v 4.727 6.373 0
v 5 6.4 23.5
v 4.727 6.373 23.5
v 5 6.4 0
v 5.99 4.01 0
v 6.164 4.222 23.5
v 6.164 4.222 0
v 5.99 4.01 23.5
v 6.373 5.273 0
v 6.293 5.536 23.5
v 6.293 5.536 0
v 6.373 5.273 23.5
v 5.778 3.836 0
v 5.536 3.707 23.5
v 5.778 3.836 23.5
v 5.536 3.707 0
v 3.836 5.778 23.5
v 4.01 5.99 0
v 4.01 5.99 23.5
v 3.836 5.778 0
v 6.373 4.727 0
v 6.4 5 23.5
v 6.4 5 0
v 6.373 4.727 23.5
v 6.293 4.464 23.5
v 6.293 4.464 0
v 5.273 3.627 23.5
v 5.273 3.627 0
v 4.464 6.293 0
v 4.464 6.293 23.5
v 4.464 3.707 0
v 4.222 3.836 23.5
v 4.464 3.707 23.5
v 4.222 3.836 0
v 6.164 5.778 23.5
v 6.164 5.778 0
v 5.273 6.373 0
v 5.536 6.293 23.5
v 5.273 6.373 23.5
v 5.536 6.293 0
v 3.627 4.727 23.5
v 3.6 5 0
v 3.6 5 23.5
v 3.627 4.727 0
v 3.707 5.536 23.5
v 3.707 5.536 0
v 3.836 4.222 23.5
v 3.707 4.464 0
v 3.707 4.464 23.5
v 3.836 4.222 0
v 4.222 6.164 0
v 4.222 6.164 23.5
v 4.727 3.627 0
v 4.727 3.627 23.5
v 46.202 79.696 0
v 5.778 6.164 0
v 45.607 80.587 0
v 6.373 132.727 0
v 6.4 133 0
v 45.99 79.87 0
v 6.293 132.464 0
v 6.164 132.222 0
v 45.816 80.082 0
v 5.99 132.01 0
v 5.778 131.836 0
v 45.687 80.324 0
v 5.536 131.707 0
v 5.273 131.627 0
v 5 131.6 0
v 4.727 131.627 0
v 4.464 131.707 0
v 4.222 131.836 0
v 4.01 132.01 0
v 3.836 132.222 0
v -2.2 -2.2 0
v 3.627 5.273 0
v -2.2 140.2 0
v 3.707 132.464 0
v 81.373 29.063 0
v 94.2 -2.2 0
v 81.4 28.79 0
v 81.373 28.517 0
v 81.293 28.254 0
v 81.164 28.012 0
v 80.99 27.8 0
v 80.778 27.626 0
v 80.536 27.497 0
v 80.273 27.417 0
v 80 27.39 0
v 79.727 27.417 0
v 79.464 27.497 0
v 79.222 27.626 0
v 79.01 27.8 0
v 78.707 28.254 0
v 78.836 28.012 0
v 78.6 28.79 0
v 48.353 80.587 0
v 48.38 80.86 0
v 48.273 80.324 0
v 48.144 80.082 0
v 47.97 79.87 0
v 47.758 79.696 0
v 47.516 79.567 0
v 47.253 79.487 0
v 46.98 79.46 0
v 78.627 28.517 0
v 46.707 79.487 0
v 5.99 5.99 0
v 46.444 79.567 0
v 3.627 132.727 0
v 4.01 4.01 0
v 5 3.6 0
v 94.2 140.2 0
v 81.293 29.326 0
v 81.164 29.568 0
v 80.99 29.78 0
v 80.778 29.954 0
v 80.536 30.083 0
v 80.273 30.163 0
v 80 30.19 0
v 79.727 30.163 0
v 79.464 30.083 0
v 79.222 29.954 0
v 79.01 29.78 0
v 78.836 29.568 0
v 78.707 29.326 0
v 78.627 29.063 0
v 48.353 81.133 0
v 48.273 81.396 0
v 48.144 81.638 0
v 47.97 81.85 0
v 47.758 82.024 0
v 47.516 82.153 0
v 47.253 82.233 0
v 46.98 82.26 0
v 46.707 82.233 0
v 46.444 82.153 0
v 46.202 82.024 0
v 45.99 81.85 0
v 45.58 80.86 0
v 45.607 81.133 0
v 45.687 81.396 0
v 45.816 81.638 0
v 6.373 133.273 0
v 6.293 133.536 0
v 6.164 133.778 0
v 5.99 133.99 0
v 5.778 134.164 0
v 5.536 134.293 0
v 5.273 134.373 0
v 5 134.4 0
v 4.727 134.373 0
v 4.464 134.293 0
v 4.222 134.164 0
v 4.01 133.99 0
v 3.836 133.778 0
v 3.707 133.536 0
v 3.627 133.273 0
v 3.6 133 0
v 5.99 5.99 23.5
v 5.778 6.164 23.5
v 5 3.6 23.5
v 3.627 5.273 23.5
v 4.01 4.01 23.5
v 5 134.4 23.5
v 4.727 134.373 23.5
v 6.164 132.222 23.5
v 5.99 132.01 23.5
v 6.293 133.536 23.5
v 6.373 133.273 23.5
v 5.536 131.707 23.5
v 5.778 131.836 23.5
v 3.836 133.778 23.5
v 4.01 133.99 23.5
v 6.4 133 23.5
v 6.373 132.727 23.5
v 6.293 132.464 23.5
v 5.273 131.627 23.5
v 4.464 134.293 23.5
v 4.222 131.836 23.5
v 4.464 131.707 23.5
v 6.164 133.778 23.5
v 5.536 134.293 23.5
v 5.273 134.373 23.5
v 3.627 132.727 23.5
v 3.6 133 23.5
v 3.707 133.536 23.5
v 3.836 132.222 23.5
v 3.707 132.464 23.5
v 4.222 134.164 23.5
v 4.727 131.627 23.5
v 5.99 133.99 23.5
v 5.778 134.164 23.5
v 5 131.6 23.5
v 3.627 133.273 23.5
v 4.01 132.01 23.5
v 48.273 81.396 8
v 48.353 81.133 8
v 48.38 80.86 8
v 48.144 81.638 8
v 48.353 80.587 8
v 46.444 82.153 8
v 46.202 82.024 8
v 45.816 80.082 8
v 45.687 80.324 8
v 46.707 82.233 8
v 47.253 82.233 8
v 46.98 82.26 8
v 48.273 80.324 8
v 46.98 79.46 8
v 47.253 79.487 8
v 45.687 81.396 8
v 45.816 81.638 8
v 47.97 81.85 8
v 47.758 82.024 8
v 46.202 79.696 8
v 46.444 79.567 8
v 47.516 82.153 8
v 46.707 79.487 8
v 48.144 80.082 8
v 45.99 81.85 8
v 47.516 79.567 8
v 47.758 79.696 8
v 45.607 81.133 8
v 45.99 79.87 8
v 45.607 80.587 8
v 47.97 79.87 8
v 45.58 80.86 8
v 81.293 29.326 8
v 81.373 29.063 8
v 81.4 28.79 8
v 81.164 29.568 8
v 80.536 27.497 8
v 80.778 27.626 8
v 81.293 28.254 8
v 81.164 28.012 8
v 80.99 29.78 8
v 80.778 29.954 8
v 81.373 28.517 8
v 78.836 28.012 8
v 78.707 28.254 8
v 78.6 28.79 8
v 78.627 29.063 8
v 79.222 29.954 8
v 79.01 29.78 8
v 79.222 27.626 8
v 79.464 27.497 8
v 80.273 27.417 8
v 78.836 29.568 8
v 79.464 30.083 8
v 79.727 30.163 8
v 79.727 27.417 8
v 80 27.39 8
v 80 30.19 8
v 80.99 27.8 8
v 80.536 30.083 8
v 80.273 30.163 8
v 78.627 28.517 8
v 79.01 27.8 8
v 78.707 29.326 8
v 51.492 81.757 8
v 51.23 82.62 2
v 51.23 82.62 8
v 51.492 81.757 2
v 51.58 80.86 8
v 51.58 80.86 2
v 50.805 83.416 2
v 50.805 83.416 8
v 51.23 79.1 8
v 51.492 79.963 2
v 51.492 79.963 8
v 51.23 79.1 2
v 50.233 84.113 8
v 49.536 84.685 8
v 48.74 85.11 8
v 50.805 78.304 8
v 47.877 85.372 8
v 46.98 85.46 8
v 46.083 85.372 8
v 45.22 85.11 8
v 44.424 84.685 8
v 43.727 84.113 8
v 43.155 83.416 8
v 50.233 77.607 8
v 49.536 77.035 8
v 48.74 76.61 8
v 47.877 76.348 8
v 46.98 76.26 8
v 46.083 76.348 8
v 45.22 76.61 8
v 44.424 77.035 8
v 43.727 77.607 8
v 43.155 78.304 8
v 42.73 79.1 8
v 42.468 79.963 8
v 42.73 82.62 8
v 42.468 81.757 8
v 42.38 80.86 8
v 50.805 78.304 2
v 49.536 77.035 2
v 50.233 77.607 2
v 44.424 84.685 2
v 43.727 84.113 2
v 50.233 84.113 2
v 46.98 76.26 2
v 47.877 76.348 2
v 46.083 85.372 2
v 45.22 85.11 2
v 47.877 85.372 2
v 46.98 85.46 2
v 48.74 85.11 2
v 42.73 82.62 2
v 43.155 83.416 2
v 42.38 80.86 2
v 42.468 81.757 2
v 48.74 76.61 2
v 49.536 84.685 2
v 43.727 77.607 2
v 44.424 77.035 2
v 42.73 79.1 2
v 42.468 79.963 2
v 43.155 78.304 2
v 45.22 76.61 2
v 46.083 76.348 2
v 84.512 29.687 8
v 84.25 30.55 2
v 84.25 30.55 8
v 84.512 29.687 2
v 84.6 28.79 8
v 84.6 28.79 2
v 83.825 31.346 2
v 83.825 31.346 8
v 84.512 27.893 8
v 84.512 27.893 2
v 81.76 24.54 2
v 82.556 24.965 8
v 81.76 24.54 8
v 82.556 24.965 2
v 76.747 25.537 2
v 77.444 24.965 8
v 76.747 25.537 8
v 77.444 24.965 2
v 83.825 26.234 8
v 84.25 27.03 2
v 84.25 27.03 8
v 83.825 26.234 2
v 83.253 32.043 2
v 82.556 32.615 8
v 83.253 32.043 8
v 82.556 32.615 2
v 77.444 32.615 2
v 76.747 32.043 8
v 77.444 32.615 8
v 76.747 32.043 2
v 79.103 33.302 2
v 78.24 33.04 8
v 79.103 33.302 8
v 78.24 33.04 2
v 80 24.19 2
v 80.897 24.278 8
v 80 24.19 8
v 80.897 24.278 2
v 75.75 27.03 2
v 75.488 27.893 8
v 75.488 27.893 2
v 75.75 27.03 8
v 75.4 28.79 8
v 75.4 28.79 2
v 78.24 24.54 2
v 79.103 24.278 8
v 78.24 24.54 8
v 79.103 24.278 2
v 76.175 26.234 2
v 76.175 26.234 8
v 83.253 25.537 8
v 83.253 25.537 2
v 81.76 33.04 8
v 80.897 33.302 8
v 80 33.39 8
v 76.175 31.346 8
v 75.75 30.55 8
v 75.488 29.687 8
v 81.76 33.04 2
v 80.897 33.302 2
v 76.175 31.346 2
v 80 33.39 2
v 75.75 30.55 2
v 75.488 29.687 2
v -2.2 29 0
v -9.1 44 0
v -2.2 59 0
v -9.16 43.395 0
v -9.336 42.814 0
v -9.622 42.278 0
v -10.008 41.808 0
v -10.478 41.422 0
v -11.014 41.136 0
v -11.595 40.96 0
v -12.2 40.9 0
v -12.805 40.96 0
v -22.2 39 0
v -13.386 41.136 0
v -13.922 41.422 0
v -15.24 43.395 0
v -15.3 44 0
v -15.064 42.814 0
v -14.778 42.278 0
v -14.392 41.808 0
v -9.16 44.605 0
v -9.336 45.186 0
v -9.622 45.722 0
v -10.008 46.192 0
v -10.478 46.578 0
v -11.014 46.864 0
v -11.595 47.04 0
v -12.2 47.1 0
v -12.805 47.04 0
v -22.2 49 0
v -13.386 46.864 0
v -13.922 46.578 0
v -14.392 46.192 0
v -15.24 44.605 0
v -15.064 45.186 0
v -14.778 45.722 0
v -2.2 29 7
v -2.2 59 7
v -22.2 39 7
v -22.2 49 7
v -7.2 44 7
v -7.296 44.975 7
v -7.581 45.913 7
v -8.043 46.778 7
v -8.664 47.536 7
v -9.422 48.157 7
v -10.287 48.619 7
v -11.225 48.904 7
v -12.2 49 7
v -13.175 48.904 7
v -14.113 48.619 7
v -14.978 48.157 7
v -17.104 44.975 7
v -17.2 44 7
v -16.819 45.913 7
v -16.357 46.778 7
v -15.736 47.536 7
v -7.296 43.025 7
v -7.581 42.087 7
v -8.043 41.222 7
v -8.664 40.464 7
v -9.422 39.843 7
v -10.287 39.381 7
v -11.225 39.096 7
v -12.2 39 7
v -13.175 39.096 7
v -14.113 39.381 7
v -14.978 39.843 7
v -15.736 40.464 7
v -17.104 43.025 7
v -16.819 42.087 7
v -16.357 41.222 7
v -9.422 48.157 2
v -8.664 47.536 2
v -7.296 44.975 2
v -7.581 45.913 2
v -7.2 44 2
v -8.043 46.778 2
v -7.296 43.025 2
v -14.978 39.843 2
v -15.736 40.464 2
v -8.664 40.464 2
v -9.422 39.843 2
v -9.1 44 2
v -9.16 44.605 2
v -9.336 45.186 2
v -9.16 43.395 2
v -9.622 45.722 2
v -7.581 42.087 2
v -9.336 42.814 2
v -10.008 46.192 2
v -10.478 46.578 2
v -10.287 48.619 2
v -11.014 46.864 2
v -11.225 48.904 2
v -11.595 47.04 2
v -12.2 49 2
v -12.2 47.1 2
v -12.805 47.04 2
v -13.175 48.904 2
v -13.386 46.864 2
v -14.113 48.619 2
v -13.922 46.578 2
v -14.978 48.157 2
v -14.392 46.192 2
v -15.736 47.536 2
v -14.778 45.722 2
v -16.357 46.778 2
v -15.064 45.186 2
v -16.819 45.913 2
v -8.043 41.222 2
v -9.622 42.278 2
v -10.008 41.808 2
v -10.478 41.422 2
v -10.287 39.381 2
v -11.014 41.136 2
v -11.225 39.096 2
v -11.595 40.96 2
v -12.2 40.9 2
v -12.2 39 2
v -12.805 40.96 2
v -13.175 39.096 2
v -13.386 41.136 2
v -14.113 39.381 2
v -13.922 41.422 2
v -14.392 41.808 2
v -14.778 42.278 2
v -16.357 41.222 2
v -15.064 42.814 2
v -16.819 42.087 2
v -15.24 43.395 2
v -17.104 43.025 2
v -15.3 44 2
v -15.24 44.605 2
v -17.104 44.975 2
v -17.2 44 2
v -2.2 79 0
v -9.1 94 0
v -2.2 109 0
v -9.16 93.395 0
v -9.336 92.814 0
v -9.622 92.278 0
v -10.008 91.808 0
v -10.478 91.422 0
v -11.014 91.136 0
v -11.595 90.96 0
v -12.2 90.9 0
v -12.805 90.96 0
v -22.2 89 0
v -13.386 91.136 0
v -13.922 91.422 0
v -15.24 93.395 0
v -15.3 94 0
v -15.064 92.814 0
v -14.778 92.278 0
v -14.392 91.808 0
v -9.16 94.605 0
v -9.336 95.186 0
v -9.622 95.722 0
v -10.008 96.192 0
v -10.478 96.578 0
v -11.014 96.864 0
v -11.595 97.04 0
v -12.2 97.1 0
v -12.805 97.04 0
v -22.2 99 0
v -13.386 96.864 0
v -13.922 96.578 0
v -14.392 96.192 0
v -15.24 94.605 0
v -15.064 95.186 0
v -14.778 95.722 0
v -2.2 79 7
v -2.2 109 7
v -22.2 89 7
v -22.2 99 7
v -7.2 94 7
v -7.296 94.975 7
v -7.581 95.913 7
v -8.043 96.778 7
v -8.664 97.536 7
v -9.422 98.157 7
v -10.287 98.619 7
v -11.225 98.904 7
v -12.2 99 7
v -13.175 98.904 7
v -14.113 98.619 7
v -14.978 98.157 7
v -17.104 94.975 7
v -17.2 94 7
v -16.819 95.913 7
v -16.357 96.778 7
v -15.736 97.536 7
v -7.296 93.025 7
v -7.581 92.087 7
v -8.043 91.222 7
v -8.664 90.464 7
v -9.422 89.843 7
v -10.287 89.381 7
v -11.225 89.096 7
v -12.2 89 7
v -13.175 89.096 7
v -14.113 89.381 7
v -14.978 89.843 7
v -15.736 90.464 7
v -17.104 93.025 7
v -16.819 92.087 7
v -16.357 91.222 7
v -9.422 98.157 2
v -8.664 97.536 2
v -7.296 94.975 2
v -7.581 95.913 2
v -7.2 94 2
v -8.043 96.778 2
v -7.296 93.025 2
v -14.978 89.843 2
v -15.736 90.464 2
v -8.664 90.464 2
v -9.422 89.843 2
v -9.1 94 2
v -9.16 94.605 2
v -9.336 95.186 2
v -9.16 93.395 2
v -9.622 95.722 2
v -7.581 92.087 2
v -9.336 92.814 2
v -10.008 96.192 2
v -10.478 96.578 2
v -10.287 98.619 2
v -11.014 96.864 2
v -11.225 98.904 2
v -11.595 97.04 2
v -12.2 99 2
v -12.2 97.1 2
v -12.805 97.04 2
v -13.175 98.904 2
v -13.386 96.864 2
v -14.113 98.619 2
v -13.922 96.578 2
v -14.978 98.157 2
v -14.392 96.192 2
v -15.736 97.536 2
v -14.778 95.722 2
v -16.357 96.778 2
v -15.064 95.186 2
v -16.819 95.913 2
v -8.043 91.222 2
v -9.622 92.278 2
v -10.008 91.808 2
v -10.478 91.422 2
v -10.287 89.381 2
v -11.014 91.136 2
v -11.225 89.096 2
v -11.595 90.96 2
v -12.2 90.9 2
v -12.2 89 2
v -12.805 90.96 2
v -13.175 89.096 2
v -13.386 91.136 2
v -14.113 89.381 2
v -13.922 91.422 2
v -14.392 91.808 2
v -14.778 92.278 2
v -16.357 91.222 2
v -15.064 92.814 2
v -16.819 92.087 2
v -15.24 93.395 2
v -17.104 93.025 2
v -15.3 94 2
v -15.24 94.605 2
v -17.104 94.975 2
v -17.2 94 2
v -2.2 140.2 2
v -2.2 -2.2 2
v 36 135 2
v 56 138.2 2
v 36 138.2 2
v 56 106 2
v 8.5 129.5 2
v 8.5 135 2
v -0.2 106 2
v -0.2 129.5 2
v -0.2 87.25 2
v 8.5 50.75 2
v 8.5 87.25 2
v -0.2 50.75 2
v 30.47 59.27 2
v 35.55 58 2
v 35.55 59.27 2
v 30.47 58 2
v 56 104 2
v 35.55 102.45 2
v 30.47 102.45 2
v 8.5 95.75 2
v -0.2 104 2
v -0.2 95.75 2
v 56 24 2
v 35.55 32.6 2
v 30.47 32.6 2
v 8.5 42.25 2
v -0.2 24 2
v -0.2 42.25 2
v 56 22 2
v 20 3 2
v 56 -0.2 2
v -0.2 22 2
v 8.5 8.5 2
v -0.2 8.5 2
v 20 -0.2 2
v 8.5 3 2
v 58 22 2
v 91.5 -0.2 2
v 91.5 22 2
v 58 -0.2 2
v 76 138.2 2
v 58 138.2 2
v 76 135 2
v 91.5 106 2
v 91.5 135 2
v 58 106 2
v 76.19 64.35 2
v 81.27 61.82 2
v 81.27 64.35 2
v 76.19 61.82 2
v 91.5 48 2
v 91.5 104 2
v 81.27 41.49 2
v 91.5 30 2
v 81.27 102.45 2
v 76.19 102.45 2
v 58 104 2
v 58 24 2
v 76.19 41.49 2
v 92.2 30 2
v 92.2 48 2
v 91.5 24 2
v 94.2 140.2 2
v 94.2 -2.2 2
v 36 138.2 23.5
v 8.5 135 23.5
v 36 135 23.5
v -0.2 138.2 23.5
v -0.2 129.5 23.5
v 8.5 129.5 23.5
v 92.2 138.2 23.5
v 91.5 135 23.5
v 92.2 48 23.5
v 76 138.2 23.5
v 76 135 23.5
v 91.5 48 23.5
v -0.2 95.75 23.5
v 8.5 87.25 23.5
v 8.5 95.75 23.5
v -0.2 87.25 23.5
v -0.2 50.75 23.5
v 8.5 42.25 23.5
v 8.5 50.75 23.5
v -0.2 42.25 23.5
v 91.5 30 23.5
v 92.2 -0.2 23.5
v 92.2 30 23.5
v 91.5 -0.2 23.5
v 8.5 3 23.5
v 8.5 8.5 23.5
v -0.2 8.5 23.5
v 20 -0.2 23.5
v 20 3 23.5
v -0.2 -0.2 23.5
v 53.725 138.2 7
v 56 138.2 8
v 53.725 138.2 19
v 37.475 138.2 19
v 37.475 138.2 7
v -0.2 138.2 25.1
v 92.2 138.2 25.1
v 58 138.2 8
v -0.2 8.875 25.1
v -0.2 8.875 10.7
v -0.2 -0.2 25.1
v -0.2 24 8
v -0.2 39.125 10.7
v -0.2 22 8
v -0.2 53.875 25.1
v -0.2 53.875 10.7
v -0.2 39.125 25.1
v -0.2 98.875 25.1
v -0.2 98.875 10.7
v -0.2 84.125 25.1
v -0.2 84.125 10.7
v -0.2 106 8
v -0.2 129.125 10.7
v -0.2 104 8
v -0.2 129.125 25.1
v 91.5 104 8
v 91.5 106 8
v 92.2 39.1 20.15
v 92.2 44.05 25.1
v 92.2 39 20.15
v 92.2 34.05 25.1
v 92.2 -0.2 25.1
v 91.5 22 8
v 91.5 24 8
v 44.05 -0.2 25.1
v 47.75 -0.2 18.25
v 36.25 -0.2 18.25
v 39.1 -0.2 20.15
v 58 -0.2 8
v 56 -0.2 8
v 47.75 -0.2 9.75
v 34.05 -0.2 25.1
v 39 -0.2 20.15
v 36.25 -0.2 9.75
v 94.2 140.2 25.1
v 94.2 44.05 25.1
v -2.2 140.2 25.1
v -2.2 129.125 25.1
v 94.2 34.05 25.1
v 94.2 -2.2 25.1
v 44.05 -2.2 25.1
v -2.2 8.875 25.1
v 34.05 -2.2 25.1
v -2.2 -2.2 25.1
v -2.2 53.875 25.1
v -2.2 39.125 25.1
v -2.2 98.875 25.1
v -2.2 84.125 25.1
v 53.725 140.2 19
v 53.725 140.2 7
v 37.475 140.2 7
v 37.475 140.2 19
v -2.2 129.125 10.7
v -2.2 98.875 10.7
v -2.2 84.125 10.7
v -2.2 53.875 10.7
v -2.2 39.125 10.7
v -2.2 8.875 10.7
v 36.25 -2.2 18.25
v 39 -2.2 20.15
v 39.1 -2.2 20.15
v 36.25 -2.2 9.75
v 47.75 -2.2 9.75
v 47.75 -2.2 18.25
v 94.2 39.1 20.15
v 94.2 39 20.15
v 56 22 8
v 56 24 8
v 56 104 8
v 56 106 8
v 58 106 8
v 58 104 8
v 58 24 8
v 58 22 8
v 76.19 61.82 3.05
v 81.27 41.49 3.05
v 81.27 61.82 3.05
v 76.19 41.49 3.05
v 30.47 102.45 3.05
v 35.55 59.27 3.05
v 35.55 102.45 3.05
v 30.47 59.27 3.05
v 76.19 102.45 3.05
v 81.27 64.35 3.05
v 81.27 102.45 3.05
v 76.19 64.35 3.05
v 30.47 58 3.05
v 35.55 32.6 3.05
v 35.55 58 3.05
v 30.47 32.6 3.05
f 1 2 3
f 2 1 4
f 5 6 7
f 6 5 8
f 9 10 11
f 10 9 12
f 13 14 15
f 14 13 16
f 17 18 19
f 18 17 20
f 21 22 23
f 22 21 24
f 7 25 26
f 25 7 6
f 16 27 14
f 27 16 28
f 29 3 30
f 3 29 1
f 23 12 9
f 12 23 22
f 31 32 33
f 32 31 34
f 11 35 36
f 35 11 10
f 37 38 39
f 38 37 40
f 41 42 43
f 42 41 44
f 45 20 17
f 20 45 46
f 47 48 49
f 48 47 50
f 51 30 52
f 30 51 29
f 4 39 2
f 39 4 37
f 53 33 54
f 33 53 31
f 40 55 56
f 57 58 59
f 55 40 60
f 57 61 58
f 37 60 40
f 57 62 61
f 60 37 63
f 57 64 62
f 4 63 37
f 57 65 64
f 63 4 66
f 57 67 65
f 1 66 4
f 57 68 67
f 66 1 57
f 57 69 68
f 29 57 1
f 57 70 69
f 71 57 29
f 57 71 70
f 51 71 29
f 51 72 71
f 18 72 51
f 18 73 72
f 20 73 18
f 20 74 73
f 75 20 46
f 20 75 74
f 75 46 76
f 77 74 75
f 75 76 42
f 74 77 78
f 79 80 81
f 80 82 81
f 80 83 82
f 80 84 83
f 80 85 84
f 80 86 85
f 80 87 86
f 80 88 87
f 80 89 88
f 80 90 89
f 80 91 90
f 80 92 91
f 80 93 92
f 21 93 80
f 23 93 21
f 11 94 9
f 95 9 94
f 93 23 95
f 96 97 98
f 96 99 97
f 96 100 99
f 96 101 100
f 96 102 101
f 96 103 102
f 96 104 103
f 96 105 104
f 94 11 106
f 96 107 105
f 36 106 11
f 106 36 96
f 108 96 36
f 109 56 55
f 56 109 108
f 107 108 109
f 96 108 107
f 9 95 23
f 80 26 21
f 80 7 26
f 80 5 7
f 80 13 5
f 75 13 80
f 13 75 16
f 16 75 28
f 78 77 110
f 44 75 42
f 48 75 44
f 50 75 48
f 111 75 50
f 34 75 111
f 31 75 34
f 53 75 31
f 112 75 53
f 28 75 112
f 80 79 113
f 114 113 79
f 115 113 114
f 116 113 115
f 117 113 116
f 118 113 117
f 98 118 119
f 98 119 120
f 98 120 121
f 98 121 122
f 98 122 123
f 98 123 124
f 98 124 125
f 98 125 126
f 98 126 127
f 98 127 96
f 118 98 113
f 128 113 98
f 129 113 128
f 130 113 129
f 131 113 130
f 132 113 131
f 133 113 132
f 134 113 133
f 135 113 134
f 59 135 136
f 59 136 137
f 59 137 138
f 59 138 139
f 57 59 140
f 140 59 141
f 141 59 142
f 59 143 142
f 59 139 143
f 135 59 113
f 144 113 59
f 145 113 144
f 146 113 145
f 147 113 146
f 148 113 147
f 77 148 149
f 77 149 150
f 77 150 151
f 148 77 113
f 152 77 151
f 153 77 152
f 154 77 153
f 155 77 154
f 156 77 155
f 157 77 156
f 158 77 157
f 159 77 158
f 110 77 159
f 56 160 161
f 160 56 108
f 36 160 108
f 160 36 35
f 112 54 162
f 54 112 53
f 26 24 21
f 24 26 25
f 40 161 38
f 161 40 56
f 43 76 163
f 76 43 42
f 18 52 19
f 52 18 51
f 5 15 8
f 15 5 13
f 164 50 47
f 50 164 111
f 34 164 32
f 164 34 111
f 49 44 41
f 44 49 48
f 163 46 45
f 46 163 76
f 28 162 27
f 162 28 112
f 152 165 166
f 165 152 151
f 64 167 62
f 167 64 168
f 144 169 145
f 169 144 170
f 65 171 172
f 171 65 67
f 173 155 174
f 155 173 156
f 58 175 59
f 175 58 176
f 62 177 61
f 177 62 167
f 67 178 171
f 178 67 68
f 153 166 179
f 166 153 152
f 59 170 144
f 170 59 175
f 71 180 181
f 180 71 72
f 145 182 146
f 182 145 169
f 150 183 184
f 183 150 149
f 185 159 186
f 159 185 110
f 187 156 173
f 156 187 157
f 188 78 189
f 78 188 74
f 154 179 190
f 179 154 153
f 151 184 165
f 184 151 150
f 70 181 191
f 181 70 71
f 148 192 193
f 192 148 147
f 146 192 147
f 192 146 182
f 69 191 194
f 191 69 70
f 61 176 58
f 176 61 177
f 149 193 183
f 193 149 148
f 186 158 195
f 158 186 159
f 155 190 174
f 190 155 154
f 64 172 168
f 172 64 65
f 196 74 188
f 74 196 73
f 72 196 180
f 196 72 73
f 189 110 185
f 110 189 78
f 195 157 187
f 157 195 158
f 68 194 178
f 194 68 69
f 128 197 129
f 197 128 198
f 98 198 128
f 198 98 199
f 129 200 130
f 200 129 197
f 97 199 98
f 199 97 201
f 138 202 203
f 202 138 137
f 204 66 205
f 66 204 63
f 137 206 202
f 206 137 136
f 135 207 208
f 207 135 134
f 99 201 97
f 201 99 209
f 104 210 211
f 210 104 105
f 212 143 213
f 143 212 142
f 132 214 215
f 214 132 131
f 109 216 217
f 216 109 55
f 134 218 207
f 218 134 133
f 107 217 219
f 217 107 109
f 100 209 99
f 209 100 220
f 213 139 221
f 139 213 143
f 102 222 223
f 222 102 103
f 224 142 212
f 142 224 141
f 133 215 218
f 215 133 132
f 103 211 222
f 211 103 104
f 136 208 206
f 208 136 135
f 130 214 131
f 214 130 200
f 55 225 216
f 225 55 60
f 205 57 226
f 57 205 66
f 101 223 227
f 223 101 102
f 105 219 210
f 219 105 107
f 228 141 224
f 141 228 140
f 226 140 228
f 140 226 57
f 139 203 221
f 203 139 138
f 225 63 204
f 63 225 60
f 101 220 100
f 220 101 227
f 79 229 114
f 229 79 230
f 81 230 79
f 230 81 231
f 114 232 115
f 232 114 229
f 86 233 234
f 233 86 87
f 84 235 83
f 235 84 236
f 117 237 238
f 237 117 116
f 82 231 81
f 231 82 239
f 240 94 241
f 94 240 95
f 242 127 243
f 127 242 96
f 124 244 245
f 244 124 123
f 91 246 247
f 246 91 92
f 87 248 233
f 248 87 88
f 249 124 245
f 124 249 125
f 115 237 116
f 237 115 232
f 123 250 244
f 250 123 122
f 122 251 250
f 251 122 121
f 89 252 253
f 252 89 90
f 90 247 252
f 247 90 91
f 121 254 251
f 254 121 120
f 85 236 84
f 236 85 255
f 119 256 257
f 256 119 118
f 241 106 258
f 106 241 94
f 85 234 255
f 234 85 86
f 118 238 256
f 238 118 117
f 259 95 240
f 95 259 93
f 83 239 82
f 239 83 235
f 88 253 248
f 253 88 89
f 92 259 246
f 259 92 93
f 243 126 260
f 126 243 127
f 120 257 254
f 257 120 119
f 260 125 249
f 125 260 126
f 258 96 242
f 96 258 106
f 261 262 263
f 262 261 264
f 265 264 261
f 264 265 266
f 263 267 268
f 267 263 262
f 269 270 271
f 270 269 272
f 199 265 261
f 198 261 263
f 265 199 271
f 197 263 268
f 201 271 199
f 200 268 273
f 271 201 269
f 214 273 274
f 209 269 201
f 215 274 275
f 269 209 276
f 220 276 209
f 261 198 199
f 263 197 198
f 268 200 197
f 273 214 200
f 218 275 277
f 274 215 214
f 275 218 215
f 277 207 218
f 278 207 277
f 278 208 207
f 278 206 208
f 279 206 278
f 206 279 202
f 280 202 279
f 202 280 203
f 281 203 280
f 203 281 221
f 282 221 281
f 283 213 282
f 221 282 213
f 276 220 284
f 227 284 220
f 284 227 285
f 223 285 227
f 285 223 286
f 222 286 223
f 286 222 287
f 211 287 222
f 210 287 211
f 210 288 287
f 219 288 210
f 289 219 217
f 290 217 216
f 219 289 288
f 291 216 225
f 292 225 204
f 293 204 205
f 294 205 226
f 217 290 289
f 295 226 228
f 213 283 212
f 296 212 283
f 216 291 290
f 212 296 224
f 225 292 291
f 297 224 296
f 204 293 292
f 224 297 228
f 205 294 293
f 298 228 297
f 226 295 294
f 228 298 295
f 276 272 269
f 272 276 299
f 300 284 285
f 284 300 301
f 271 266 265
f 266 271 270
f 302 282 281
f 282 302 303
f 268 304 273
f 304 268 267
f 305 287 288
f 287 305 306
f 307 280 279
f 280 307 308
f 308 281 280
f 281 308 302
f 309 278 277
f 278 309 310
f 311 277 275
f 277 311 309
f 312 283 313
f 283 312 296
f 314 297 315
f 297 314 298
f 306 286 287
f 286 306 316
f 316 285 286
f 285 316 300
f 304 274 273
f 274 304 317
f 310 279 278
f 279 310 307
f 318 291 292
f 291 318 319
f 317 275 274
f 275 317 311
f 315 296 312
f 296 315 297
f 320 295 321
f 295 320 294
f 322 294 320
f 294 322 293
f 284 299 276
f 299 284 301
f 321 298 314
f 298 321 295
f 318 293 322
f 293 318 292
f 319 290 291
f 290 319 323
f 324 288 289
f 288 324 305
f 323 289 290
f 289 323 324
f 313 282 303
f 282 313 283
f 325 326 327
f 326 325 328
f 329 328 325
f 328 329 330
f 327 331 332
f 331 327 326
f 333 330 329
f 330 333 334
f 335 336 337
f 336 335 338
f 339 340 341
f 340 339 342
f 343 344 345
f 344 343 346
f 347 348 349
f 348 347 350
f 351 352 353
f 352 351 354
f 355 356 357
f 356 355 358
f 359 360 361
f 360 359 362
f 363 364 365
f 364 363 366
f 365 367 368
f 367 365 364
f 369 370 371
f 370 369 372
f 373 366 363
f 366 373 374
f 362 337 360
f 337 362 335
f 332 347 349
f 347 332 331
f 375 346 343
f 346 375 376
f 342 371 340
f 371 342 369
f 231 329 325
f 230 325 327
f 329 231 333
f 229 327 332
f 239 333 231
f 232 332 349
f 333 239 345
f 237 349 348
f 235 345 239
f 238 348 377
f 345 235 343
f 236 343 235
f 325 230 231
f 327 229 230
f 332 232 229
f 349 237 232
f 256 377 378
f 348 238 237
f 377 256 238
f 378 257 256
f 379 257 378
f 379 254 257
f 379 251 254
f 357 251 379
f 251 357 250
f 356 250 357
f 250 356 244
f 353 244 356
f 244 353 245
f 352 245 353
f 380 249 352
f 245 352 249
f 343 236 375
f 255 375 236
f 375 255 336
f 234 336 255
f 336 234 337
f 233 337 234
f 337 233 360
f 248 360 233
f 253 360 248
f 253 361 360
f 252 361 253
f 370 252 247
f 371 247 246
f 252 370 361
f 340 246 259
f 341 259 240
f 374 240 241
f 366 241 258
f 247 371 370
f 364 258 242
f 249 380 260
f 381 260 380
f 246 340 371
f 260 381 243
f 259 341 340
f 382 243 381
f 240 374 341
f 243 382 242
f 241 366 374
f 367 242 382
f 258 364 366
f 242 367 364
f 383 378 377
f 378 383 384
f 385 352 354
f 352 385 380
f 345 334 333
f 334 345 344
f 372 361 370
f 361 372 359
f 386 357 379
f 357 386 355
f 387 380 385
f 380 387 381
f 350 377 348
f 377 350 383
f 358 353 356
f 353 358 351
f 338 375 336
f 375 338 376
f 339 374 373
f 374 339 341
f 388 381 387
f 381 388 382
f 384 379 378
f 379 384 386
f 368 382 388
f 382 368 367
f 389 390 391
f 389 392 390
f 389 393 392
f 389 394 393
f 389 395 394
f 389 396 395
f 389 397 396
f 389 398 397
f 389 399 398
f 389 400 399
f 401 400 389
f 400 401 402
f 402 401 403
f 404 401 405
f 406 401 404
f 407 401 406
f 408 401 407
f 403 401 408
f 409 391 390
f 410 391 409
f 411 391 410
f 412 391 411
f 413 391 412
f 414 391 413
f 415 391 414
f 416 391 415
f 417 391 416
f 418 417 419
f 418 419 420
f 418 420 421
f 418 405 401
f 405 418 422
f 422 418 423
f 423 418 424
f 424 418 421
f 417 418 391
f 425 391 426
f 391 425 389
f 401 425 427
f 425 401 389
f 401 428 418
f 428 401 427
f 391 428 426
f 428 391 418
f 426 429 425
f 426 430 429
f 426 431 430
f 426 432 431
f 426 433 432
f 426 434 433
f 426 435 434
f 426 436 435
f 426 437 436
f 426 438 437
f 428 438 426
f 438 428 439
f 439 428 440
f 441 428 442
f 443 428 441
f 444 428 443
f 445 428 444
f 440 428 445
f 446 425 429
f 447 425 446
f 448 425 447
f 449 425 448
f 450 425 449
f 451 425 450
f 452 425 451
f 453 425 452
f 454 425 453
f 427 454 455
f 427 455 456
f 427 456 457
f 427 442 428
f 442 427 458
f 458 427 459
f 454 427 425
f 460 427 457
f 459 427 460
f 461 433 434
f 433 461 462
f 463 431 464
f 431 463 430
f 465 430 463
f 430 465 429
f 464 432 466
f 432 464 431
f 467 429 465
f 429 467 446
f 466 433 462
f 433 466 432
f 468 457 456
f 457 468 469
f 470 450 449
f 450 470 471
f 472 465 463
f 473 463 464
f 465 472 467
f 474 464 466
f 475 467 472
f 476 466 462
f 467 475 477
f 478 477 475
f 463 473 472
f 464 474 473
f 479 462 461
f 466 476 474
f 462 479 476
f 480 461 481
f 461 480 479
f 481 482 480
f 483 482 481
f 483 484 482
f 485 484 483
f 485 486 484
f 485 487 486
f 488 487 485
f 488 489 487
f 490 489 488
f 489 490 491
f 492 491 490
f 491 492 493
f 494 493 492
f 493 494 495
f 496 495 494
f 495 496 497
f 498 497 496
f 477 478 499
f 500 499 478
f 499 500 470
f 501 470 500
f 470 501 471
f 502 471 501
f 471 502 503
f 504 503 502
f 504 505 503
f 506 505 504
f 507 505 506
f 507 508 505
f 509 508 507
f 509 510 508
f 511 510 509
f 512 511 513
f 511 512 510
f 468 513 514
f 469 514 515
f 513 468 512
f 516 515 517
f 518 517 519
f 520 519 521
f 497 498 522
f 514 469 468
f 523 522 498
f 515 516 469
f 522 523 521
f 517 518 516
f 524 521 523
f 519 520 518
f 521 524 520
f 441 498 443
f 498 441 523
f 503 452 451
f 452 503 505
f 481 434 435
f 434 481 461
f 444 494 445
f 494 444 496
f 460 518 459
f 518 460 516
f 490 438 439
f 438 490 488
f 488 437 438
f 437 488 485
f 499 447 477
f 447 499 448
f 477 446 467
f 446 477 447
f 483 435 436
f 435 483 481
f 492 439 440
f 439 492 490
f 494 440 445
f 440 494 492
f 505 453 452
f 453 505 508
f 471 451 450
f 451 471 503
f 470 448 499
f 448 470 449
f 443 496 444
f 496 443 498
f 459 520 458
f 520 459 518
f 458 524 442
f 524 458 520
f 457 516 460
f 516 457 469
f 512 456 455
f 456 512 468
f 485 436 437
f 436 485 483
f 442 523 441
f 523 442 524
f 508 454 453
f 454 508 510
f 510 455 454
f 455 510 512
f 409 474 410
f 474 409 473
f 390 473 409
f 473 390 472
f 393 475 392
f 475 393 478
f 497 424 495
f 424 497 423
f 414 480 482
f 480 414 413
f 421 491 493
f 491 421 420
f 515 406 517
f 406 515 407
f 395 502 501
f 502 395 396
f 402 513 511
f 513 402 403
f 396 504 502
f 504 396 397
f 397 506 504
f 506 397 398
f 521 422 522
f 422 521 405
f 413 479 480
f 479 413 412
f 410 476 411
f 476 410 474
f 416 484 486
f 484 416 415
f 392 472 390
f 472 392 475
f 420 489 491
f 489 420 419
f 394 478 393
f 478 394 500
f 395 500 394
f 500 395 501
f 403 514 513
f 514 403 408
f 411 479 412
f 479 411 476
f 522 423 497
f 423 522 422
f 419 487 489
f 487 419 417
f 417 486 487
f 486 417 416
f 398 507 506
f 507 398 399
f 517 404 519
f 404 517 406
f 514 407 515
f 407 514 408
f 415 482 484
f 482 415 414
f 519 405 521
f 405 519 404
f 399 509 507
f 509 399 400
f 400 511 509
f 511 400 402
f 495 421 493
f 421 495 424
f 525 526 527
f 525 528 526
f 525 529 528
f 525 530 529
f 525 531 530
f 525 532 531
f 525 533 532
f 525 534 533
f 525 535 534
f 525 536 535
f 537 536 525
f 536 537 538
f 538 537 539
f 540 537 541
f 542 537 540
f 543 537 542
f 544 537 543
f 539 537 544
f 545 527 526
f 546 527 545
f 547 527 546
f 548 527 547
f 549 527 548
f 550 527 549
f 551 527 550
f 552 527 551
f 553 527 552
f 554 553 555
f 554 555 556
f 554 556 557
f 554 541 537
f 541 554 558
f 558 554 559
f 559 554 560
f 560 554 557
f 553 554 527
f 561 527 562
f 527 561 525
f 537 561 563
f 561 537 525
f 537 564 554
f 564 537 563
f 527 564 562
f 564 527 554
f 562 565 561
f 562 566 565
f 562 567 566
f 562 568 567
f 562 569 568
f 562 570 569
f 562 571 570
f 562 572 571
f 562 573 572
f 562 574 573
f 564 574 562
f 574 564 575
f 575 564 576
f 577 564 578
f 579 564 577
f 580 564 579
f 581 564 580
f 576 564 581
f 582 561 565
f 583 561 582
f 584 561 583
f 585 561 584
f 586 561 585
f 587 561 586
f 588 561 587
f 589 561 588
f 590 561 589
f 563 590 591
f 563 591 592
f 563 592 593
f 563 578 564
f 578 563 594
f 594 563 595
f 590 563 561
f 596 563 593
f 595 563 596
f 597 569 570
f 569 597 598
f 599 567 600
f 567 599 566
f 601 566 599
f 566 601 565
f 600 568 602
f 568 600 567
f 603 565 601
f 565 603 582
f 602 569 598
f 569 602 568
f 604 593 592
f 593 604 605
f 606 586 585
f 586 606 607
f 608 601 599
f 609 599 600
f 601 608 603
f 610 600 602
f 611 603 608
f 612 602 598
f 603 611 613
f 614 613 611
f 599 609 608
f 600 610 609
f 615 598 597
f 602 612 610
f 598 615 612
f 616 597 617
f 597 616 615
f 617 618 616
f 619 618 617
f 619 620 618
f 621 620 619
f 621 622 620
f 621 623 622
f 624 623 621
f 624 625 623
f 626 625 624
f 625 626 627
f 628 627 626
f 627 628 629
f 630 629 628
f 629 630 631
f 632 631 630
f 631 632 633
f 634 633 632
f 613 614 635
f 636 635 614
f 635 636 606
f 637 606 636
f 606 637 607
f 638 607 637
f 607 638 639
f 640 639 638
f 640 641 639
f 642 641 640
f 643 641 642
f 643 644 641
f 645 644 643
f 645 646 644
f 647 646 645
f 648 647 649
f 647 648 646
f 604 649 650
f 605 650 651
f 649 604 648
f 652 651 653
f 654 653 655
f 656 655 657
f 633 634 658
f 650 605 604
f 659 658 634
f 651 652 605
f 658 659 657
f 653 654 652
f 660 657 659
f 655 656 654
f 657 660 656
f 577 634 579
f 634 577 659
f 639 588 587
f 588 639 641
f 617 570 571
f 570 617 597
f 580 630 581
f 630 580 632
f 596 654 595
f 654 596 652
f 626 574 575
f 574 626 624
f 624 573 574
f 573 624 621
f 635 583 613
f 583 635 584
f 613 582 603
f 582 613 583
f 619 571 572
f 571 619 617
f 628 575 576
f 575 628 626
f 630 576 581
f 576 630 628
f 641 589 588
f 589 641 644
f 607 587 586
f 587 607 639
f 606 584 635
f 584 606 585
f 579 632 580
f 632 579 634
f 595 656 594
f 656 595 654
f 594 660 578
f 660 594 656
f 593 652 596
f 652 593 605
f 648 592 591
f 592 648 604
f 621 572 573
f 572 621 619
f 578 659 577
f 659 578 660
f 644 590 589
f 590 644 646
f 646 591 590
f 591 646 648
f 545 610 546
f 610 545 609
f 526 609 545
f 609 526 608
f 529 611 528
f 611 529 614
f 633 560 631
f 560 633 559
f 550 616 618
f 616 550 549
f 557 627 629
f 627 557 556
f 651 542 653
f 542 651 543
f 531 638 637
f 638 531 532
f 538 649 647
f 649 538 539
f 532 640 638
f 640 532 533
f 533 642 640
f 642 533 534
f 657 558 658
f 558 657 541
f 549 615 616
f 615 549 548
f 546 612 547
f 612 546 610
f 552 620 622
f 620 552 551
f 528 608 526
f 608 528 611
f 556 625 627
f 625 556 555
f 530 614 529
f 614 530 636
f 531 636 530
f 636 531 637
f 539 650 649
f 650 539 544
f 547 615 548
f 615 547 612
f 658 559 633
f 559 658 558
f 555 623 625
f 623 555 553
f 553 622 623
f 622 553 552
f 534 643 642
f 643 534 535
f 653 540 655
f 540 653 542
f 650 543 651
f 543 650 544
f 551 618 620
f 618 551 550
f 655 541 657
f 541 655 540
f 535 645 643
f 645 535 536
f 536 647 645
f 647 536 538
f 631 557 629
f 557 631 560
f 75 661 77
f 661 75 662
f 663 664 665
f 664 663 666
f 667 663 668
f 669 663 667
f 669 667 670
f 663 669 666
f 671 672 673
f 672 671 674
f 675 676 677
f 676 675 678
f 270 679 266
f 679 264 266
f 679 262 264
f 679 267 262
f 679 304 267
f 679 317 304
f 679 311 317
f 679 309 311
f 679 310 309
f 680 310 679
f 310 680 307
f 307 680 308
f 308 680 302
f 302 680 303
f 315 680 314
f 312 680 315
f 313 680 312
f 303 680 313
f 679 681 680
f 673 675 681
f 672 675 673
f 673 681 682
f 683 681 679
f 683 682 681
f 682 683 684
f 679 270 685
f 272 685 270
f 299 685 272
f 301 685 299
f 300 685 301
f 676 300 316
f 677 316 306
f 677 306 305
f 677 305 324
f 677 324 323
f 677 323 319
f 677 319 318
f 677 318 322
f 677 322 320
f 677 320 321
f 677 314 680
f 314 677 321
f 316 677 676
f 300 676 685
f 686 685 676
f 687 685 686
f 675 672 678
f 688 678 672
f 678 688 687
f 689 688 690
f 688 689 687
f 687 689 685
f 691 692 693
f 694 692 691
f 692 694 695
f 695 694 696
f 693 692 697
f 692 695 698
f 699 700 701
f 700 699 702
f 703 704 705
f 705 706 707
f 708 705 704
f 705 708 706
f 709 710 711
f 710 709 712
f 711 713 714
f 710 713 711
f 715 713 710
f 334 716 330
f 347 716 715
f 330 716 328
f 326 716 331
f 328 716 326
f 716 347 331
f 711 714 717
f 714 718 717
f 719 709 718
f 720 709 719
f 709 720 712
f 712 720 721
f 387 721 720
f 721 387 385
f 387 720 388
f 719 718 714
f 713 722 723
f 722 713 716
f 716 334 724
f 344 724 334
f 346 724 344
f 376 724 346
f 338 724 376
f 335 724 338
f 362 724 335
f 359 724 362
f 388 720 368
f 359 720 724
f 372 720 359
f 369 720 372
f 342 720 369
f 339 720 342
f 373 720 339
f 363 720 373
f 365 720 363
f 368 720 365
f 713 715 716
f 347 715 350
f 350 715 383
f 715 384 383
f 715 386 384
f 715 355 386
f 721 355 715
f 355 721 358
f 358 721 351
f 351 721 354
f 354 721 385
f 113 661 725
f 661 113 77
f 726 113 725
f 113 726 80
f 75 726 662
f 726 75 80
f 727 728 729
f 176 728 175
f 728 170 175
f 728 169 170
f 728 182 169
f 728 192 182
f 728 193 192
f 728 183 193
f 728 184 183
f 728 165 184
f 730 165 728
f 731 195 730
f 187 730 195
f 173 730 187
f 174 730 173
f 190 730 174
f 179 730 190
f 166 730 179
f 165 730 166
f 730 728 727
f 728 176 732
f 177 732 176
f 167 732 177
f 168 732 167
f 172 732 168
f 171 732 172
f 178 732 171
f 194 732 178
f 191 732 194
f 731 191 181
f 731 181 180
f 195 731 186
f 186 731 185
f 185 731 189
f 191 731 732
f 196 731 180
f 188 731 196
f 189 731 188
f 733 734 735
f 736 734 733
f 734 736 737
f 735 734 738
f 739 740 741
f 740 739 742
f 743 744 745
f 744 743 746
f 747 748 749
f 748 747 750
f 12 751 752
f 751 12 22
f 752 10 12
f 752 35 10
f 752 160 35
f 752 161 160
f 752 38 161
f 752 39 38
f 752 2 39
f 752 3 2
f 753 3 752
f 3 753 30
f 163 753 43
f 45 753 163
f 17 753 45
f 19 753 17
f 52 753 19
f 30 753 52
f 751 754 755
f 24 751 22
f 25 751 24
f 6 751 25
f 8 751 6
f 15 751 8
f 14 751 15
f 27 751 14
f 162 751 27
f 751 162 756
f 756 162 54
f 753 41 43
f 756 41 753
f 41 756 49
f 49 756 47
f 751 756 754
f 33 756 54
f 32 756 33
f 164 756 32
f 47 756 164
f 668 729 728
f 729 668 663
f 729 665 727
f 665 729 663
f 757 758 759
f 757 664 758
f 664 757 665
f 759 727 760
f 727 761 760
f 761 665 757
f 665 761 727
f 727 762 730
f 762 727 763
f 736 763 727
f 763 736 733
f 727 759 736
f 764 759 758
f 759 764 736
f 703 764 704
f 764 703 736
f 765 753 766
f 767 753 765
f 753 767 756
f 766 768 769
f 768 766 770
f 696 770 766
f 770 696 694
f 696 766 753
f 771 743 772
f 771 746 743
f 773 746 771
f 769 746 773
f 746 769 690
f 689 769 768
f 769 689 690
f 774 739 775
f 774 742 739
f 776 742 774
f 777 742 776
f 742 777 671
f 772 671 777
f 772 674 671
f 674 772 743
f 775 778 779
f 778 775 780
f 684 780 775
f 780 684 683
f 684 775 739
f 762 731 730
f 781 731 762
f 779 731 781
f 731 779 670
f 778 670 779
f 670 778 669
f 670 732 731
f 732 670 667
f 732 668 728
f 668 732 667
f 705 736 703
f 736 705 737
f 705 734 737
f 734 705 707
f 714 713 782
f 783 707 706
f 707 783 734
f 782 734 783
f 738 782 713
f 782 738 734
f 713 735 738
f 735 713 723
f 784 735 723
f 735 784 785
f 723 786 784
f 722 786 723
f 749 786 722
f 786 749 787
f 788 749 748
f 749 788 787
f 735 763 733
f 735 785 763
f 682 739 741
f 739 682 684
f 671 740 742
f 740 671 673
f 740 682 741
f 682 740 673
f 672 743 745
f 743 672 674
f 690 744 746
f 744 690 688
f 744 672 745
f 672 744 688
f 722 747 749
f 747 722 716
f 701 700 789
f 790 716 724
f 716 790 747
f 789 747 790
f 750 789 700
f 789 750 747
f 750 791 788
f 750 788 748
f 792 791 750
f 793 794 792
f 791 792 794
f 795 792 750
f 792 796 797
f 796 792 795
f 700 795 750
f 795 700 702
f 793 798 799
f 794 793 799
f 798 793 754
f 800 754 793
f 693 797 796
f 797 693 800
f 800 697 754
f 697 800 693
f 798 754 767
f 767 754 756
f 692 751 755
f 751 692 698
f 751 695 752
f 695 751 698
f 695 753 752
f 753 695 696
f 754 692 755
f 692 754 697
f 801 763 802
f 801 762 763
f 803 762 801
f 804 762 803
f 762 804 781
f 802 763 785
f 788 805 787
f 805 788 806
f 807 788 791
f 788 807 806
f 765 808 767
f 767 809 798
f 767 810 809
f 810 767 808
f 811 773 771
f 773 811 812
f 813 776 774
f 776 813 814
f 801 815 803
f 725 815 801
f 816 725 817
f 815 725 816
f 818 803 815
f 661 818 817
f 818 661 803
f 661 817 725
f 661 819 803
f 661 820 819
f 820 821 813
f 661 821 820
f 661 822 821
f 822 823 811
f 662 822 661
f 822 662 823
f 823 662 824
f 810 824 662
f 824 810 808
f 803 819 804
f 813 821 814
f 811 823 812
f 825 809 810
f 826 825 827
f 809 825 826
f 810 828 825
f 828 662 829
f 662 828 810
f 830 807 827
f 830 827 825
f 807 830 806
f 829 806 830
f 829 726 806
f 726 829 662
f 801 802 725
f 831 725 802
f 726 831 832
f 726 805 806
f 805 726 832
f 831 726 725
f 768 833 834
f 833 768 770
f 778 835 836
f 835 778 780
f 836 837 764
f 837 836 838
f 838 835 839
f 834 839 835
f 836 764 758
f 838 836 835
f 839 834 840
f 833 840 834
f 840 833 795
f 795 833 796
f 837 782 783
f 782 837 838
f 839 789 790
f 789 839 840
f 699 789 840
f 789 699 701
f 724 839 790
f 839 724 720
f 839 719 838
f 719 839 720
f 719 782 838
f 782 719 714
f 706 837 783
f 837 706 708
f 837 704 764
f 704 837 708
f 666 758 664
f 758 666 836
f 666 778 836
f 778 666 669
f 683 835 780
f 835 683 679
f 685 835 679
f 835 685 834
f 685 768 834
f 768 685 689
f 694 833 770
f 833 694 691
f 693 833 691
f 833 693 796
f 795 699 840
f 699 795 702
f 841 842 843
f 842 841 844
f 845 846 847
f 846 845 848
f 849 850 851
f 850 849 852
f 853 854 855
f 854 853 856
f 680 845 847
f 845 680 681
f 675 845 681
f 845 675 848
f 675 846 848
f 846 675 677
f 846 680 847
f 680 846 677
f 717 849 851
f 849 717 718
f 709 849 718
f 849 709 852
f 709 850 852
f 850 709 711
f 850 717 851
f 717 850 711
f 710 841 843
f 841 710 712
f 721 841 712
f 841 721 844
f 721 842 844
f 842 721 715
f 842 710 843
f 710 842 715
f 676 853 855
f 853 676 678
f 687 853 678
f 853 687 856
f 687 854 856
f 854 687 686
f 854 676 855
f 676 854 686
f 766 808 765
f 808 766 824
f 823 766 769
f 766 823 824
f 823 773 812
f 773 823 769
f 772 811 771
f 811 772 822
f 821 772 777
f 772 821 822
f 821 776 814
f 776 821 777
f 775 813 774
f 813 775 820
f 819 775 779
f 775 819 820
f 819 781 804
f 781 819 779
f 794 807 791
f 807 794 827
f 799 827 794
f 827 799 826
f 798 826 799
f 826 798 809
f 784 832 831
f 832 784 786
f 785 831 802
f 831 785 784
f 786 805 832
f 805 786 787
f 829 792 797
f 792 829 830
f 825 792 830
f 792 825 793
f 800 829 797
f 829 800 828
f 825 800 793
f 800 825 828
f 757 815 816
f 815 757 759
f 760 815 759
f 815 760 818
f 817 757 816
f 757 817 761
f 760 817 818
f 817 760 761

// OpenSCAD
// file: common.scad
pcb_x = 92;
pcb_y = 138;
pcb_thickness = 1.6;
pcb_margin = 0.2;
thickness_below_pcb = 21.5;
support_nucleo_pins_h = 1.05;
structure_rails_height = 6.0;
d = 2;
m3_mount_diameter = 9.2;
m3_mount_h = 6; 
m3_drill_diameter = 2.8;

$fn = 32;
    
module stitching_shape_base() {
    union() {
        translate([39, -pcb_margin - d, 0])
            rotate(-90, [1, 0, 0])
                rotate(45, [0, 0, 1])
                    linear_extrude(d)
                        square(7, center=true);
        translate([pcb_x + pcb_margin, 39, 0])
            rotate(90, [0, 1, 0])
                rotate(45, [0, 0, 1])
                    linear_extrude(d)
                        square(7, center=true);
    }
}
// main file
include <common.scad>

module pcb_support_2d() {
    left_square_pad_size = 8.5;
    left_midpoint_y_1 = 46.5;
    left_midpoint_y_2 = 91.5;
    top_left_bar_len = 36;
    top_right_bar_len = 16;
    top_bar_width = 3;
    right_bar_width = 0.5;
    right_bar_length_1 = 30;
    right_bar_length_2 = 90;
    bottom_left_bar_len = 20;
    bottom_bar_width = 3;
    union() {
        
        translate ([-pcb_margin, -pcb_margin]) 
            square(pcb_margin + left_square_pad_size);
        translate ([-pcb_margin, pcb_y - left_square_pad_size]) 
            square(pcb_margin + left_square_pad_size);
        translate ([-pcb_margin, left_midpoint_y_1 - left_square_pad_size / 2]) 
            square([pcb_margin + left_square_pad_size, left_square_pad_size]);
        translate ([-pcb_margin, left_midpoint_y_2 - left_square_pad_size / 2]) 
            square([pcb_margin + left_square_pad_size, left_square_pad_size]);
        
        translate ([-pcb_margin, pcb_y - top_bar_width]) 
            square([pcb_margin + top_left_bar_len, pcb_margin + top_bar_width]);
        translate ([pcb_x - top_right_bar_len, pcb_y - top_bar_width]) 
            square([pcb_margin + top_right_bar_len, pcb_margin + top_bar_width]);
        
        translate ([pcb_x - right_bar_width, -pcb_margin]) 
            square([pcb_margin + right_bar_width, right_bar_length_1 + pcb_margin]);
        
        translate ([pcb_x - right_bar_width, pcb_y - right_bar_length_2]) 
            square([pcb_margin + right_bar_width, right_bar_length_2 + pcb_margin]);
        
        translate ([-pcb_margin, -pcb_margin]) 
            square([pcb_margin + bottom_left_bar_len, pcb_margin + bottom_bar_width]);
    }
}

module base_2d() {
        translate([-d - pcb_margin, -d - pcb_margin])
            square([pcb_x + 2 * pcb_margin + 2 * d, pcb_y + 2 * pcb_margin + 2 * d]);
}

module outer_frame_2d() {
    difference() {
        base_2d();
        translate([-pcb_margin, -pcb_margin])
            square([pcb_x + 2 * pcb_margin, pcb_y + 2 * pcb_margin]);
    }
}

module structure_rails_2d() {
    rail_vertical_x = 57;
    rail_horizontal_y_1 = 23;
    rail_horizontal_y_2 = 105;
    union() {
        translate([-pcb_margin, rail_horizontal_y_1 - d / 2])
            square([pcb_x + 2 * pcb_margin, d]);
        translate([-pcb_margin, rail_horizontal_y_2 - d / 2])
            square([pcb_x + 2 * pcb_margin, d]);
        translate([rail_vertical_x - d / 2, -pcb_margin])
            square([d, pcb_y + 2 * pcb_margin]);
    }
}

module support_nucleo_pins_2d() {
    x1 = 30.47;
    y1 = 32.6;
    w1 = 5.08;
    h1 = 25.4;
    
    x2 = 30.47;
    y2 = 59.27;
    w2 = 5.08;
    h2 = 43.18;
    
    x3 = 76.19;
    y3 = 41.49;
    w3 = 5.08;
    h3 = 20.33;
    
    x4 = 76.19;
    y4 = 64.35;
    w4 = 5.08;
    h4 = 38.10;
    
    
    union() {
        translate([x1, y1])
            square([w1, h1]);
        translate([x2, y2])
            square([w2, h2]);
        translate([x3, y3])
            square([w3, h3]);
        translate([x4, y4])
            square([w4, h4]);
    }
}

module motor_cutouts_2d() {  // in yz plane
    y1 = 24; 
    y2 = 69;
    y3 = 114;
    depth = 14.4;
    width = 30.25;
    union() {
        translate([y1 - width / 2, d + thickness_below_pcb + pcb_thickness - depth])
            square([width, depth + 1]);
        translate([y2 - width / 2, d + thickness_below_pcb + pcb_thickness - depth])
            square([width, depth + 1]);
        translate([y3 - width / 2, d + thickness_below_pcb + pcb_thickness - depth])
            square([width, depth + 1]);
    }
}

module m3_mount_base() {
    x1 = 5;
    y1 = 5;
    x2 = 5;
    y2 = 133;
    x3 = 46.98;
    y3 = 80.86;
    x4 = 80.00;
    y4 = 28.79;
    translate([x3, y3, 0])
        cylinder(d=m3_mount_diameter, h=d+m3_mount_h);
    translate([x4, y4, 0])
        cylinder(d=m3_mount_diameter, h=d+m3_mount_h);
}

module m3_mount_drills() {
    x1 = 5;
    y1 = 5;
    x2 = 5;
    y2 = 133;
    x3 = 46.98;
    y3 = 80.86;
    x4 = 80.00;
    y4 = 28.79;
    translate([x1, y1, 0])
        cylinder(d=m3_drill_diameter, h=d+thickness_below_pcb + pcb_thickness);
    translate([x2, y2, 0])
        cylinder(d=m3_drill_diameter, h=d+thickness_below_pcb + pcb_thickness);
    translate([x3, y3, 0])
        cylinder(d=m3_drill_diameter, h=d+thickness_below_pcb + pcb_thickness);
    translate([x4, y4, 0])
        cylinder(d=m3_drill_diameter, h=d+thickness_below_pcb + pcb_thickness);
}

module mount_tab(yyy) {
    head_diameter = 10;
    drill_offset = head_diameter * 1;
    drill_diameter = 6.2;
    base_thickness = 5 + d;
    
   
    translate([-d-pcb_margin, yyy, 0])
        difference() {
            linear_extrude(height=base_thickness) 
                polygon([
                [0, -head_diameter * 1.5], 
                [-drill_offset - head_diameter, -head_diameter / 2],
                [-drill_offset - head_diameter, head_diameter / 2],
                [0, head_diameter * 1.5]       
            ]);
            translate([-drill_offset, 0, d])
                cylinder(h=100, d=head_diameter);
            translate([-drill_offset, 0, -1])
                cylinder(h=100, d=drill_diameter);
        }
}


module stlink_drill() {
    x = 42;
    depth = 9.5;
    w = 11.5;
    h = 8.5;
    translate([x, -pcb_margin - d / 2, d + thickness_below_pcb - depth])
        cube([w, 10, h], center=true);
}

module ethernet_drill() {
    x = 45.6;
    depth = 10.5;
    w = 16.25;
    h = 12;
    translate([x, pcb_y + pcb_margin + d / 2, d + thickness_below_pcb - depth])
        cube([w, 10, h], center=true);
}

module base() {
    difference() {
        union() {
            linear_extrude(d)
                base_2d();
            linear_extrude(d + thickness_below_pcb)
                pcb_support_2d();
            linear_extrude(d + thickness_below_pcb + pcb_thickness)
                outer_frame_2d();
            linear_extrude(d + structure_rails_height)
                structure_rails_2d();
            linear_extrude(d + support_nucleo_pins_h)
                support_nucleo_pins_2d();
            m3_mount_base();
            mount_tab(pcb_y / 2 - 25);
            mount_tab(pcb_y / 2 + 25);
        }
        rotate(90, [1, 0, 0]) 
            rotate(90, [0, 1, 0])
                linear_extrude(10, center=true)
                    motor_cutouts_2d();
        m3_mount_drills();
        translate([0, 0, d + thickness_below_pcb + pcb_thickness])
            minkowski() {
                stitching_shape_base();
                cube(0.1);
            }
        stlink_drill();
        ethernet_drill();
    }
}

base();
//structure_rails_2d();
